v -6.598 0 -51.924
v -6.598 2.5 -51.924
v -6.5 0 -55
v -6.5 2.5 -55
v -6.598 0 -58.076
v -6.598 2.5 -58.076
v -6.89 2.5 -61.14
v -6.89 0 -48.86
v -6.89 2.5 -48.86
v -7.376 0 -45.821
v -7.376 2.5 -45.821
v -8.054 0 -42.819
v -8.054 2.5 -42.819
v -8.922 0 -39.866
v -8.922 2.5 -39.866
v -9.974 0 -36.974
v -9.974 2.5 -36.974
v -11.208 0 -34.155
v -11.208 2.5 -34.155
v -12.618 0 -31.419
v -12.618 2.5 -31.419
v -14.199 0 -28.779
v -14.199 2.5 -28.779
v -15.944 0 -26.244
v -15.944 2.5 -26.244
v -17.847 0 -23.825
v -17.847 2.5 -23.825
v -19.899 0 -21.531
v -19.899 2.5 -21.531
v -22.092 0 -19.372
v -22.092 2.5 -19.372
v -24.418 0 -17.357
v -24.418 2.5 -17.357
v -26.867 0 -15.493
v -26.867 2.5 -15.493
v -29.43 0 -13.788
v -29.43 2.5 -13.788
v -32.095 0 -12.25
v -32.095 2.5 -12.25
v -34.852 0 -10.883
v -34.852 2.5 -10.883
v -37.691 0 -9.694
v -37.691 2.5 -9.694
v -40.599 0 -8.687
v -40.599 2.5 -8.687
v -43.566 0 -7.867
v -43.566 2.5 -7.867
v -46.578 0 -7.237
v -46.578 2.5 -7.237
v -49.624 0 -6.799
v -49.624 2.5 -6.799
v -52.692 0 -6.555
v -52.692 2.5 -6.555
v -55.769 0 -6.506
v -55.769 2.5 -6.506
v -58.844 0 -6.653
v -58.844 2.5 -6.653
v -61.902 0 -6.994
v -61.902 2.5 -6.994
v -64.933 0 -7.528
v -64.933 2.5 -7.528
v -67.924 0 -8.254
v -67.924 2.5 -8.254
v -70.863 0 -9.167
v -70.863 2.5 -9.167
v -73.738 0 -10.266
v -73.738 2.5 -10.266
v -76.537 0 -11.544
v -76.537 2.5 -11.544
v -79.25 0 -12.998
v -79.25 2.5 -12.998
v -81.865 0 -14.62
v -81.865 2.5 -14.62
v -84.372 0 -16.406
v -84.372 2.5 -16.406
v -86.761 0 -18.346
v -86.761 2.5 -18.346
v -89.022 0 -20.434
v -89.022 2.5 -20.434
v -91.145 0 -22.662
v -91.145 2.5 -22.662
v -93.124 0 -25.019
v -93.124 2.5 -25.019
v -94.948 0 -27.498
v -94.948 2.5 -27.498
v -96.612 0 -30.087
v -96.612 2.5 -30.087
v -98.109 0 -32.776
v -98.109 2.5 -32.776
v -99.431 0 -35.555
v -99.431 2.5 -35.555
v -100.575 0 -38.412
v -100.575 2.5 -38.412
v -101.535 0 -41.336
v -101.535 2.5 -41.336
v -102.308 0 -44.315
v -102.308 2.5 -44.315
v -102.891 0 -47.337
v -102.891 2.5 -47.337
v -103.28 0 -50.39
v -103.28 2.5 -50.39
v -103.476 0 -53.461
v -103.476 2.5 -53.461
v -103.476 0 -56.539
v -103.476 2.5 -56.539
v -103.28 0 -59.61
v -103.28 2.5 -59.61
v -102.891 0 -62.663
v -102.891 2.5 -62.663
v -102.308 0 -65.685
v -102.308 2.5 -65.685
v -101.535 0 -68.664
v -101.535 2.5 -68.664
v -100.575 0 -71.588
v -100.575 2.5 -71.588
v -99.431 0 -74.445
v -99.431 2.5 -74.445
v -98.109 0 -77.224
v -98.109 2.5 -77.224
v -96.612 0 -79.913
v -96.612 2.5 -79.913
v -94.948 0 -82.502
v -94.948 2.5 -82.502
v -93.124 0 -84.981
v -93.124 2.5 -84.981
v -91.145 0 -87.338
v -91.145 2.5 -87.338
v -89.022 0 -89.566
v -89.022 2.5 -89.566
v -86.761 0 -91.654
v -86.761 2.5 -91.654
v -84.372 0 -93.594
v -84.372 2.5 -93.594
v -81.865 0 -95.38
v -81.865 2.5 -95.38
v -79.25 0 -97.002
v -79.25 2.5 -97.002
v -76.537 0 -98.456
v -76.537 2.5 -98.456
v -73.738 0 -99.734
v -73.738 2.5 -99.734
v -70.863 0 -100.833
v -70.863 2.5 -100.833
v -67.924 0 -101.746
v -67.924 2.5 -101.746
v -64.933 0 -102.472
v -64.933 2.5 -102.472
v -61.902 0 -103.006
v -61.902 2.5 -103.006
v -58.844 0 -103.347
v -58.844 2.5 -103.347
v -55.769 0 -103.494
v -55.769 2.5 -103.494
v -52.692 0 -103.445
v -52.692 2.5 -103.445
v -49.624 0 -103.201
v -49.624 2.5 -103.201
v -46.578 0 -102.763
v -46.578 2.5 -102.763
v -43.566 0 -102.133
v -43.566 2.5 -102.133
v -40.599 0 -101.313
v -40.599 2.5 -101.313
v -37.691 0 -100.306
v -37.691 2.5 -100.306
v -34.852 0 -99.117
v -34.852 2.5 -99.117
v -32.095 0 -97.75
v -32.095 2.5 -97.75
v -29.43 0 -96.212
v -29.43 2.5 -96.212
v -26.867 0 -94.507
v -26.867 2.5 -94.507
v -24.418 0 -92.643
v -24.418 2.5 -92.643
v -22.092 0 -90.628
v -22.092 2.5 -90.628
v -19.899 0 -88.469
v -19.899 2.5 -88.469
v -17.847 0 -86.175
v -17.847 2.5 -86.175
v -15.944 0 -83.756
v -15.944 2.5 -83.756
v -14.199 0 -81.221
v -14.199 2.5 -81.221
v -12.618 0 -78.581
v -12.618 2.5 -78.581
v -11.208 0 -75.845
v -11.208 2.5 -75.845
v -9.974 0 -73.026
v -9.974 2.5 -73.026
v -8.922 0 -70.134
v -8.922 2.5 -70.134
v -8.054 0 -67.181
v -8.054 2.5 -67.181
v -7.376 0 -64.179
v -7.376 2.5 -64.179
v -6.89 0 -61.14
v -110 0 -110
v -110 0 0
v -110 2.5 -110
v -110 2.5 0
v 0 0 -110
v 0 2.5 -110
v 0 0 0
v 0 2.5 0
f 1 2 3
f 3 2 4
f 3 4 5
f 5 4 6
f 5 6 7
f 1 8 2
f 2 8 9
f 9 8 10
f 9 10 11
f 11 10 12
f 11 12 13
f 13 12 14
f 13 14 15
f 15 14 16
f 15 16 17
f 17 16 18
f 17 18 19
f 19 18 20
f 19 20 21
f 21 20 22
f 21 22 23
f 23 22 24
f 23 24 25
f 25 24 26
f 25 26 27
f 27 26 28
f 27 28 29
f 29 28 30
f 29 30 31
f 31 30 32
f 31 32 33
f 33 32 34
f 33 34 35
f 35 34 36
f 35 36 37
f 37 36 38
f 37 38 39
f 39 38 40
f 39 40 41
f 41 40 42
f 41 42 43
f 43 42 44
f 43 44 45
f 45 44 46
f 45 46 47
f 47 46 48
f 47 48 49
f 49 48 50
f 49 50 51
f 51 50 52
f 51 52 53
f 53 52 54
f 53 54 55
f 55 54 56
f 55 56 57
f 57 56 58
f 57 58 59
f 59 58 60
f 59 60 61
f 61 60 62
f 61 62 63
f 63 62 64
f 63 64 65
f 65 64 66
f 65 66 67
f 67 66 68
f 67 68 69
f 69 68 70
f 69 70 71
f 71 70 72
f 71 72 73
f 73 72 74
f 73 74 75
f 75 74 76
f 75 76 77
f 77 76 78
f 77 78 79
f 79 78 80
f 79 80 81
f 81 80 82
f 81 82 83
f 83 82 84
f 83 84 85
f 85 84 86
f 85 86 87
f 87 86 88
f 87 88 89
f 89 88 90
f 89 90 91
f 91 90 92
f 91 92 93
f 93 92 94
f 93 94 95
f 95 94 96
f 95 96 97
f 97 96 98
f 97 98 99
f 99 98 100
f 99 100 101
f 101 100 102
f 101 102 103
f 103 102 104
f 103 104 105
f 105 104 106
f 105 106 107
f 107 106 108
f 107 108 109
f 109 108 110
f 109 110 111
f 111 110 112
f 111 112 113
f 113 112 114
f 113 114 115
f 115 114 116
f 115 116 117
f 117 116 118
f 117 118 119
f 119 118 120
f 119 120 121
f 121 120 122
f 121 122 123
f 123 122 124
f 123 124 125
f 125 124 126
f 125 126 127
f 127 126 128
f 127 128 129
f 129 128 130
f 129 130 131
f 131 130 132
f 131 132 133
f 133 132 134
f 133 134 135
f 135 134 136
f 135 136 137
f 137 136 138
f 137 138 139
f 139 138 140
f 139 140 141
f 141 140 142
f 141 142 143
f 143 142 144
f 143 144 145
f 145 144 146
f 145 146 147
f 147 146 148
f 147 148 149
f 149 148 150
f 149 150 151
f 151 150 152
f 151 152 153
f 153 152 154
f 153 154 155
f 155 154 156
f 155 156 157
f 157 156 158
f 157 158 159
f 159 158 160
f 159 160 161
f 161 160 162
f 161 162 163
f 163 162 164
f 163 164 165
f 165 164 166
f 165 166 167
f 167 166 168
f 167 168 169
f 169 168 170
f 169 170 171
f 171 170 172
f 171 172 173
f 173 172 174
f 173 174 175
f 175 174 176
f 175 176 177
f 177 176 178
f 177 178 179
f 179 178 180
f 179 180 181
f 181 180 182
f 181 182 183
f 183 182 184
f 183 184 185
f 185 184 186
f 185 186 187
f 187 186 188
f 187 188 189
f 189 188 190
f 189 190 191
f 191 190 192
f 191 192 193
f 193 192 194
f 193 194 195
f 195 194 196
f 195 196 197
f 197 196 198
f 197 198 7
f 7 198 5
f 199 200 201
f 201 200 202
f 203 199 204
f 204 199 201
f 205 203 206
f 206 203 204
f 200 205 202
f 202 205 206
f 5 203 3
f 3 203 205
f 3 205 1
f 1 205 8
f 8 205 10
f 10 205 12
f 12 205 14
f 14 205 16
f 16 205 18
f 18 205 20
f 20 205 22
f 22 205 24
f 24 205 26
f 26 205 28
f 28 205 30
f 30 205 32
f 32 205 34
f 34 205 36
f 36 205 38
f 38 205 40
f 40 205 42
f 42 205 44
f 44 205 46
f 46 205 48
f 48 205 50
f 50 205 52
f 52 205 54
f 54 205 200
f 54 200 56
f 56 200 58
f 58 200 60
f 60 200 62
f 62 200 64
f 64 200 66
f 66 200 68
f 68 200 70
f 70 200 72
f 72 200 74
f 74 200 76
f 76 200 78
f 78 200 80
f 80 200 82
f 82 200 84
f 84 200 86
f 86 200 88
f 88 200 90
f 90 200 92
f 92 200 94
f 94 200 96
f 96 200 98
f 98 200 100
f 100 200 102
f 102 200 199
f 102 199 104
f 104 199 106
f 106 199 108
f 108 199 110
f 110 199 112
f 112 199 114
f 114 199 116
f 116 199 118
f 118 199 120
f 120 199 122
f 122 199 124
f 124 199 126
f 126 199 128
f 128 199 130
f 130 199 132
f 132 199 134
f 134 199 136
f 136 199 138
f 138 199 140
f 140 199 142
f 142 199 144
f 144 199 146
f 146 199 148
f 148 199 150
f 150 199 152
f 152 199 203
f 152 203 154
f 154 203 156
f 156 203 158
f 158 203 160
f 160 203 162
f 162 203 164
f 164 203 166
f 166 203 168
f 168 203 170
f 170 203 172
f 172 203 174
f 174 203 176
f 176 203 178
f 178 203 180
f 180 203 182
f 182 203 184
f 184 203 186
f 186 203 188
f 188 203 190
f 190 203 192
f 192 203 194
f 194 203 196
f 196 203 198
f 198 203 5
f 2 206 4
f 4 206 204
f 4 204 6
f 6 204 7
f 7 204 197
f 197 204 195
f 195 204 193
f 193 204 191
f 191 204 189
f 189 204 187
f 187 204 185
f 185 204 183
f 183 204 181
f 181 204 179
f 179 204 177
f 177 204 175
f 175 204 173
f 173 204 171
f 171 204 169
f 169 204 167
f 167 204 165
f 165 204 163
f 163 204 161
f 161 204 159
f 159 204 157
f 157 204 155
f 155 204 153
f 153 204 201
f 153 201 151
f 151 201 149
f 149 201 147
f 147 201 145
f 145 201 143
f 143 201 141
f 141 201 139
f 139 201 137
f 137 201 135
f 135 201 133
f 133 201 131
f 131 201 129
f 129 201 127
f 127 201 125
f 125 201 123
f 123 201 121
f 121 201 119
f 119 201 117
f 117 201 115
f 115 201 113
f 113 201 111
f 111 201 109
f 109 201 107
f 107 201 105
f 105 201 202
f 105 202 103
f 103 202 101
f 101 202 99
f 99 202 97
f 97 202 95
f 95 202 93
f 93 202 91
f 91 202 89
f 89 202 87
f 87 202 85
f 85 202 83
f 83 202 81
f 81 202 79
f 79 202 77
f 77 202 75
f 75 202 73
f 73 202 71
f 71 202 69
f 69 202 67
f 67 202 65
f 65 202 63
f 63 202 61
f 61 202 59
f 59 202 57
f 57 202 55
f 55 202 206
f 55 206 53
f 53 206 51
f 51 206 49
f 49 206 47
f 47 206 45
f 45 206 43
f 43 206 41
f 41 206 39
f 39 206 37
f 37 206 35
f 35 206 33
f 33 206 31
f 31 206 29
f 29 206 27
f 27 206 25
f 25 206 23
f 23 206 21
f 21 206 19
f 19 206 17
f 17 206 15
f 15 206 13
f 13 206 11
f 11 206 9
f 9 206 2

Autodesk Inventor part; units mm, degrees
ref_plane "YZ Plane" through (0, 0, 0) normal (1, 0, 0) x (0, 1, 0)
ref_plane "XZ Plane" through (0, 0, 0) normal (0, 1, 0) x (-1, 0, 0)
ref_plane "XY Plane" through (0, 0, 0) normal (0, 0, 1) x (1, 0, 0)
sketch "Sketch1" plane through (0, 0, 0) normal (0, 1, 0) x (-1, 0, 0)
  line L0 (0, 0) -> (110, 0)
  line L1 (110, 0) -> (110, -110)
  line L2 (110, -110) -> (0, -110)
  line L3 (0, -110) -> (0, 0)
  dimension "d0" = 110
  dimension "d1" = 110
extrude "Extrusion1" add sketch "Sketch1" along normal blind 2.5
sketch "Sketch2" plane through (0, 2.5, 0) normal (0, 1, 0) x (1, 0, 0)
  line L0 (-110, 110) -> (-110, 0) projected
  line L1 (-110, 0) -> (0, 0) projected
  circle A0 centre (-55, 55) radius 48.5
extrude "Extrusion2" cut sketch "Sketch2" against normal blind 2.5
properties part number "AdapterRing"
